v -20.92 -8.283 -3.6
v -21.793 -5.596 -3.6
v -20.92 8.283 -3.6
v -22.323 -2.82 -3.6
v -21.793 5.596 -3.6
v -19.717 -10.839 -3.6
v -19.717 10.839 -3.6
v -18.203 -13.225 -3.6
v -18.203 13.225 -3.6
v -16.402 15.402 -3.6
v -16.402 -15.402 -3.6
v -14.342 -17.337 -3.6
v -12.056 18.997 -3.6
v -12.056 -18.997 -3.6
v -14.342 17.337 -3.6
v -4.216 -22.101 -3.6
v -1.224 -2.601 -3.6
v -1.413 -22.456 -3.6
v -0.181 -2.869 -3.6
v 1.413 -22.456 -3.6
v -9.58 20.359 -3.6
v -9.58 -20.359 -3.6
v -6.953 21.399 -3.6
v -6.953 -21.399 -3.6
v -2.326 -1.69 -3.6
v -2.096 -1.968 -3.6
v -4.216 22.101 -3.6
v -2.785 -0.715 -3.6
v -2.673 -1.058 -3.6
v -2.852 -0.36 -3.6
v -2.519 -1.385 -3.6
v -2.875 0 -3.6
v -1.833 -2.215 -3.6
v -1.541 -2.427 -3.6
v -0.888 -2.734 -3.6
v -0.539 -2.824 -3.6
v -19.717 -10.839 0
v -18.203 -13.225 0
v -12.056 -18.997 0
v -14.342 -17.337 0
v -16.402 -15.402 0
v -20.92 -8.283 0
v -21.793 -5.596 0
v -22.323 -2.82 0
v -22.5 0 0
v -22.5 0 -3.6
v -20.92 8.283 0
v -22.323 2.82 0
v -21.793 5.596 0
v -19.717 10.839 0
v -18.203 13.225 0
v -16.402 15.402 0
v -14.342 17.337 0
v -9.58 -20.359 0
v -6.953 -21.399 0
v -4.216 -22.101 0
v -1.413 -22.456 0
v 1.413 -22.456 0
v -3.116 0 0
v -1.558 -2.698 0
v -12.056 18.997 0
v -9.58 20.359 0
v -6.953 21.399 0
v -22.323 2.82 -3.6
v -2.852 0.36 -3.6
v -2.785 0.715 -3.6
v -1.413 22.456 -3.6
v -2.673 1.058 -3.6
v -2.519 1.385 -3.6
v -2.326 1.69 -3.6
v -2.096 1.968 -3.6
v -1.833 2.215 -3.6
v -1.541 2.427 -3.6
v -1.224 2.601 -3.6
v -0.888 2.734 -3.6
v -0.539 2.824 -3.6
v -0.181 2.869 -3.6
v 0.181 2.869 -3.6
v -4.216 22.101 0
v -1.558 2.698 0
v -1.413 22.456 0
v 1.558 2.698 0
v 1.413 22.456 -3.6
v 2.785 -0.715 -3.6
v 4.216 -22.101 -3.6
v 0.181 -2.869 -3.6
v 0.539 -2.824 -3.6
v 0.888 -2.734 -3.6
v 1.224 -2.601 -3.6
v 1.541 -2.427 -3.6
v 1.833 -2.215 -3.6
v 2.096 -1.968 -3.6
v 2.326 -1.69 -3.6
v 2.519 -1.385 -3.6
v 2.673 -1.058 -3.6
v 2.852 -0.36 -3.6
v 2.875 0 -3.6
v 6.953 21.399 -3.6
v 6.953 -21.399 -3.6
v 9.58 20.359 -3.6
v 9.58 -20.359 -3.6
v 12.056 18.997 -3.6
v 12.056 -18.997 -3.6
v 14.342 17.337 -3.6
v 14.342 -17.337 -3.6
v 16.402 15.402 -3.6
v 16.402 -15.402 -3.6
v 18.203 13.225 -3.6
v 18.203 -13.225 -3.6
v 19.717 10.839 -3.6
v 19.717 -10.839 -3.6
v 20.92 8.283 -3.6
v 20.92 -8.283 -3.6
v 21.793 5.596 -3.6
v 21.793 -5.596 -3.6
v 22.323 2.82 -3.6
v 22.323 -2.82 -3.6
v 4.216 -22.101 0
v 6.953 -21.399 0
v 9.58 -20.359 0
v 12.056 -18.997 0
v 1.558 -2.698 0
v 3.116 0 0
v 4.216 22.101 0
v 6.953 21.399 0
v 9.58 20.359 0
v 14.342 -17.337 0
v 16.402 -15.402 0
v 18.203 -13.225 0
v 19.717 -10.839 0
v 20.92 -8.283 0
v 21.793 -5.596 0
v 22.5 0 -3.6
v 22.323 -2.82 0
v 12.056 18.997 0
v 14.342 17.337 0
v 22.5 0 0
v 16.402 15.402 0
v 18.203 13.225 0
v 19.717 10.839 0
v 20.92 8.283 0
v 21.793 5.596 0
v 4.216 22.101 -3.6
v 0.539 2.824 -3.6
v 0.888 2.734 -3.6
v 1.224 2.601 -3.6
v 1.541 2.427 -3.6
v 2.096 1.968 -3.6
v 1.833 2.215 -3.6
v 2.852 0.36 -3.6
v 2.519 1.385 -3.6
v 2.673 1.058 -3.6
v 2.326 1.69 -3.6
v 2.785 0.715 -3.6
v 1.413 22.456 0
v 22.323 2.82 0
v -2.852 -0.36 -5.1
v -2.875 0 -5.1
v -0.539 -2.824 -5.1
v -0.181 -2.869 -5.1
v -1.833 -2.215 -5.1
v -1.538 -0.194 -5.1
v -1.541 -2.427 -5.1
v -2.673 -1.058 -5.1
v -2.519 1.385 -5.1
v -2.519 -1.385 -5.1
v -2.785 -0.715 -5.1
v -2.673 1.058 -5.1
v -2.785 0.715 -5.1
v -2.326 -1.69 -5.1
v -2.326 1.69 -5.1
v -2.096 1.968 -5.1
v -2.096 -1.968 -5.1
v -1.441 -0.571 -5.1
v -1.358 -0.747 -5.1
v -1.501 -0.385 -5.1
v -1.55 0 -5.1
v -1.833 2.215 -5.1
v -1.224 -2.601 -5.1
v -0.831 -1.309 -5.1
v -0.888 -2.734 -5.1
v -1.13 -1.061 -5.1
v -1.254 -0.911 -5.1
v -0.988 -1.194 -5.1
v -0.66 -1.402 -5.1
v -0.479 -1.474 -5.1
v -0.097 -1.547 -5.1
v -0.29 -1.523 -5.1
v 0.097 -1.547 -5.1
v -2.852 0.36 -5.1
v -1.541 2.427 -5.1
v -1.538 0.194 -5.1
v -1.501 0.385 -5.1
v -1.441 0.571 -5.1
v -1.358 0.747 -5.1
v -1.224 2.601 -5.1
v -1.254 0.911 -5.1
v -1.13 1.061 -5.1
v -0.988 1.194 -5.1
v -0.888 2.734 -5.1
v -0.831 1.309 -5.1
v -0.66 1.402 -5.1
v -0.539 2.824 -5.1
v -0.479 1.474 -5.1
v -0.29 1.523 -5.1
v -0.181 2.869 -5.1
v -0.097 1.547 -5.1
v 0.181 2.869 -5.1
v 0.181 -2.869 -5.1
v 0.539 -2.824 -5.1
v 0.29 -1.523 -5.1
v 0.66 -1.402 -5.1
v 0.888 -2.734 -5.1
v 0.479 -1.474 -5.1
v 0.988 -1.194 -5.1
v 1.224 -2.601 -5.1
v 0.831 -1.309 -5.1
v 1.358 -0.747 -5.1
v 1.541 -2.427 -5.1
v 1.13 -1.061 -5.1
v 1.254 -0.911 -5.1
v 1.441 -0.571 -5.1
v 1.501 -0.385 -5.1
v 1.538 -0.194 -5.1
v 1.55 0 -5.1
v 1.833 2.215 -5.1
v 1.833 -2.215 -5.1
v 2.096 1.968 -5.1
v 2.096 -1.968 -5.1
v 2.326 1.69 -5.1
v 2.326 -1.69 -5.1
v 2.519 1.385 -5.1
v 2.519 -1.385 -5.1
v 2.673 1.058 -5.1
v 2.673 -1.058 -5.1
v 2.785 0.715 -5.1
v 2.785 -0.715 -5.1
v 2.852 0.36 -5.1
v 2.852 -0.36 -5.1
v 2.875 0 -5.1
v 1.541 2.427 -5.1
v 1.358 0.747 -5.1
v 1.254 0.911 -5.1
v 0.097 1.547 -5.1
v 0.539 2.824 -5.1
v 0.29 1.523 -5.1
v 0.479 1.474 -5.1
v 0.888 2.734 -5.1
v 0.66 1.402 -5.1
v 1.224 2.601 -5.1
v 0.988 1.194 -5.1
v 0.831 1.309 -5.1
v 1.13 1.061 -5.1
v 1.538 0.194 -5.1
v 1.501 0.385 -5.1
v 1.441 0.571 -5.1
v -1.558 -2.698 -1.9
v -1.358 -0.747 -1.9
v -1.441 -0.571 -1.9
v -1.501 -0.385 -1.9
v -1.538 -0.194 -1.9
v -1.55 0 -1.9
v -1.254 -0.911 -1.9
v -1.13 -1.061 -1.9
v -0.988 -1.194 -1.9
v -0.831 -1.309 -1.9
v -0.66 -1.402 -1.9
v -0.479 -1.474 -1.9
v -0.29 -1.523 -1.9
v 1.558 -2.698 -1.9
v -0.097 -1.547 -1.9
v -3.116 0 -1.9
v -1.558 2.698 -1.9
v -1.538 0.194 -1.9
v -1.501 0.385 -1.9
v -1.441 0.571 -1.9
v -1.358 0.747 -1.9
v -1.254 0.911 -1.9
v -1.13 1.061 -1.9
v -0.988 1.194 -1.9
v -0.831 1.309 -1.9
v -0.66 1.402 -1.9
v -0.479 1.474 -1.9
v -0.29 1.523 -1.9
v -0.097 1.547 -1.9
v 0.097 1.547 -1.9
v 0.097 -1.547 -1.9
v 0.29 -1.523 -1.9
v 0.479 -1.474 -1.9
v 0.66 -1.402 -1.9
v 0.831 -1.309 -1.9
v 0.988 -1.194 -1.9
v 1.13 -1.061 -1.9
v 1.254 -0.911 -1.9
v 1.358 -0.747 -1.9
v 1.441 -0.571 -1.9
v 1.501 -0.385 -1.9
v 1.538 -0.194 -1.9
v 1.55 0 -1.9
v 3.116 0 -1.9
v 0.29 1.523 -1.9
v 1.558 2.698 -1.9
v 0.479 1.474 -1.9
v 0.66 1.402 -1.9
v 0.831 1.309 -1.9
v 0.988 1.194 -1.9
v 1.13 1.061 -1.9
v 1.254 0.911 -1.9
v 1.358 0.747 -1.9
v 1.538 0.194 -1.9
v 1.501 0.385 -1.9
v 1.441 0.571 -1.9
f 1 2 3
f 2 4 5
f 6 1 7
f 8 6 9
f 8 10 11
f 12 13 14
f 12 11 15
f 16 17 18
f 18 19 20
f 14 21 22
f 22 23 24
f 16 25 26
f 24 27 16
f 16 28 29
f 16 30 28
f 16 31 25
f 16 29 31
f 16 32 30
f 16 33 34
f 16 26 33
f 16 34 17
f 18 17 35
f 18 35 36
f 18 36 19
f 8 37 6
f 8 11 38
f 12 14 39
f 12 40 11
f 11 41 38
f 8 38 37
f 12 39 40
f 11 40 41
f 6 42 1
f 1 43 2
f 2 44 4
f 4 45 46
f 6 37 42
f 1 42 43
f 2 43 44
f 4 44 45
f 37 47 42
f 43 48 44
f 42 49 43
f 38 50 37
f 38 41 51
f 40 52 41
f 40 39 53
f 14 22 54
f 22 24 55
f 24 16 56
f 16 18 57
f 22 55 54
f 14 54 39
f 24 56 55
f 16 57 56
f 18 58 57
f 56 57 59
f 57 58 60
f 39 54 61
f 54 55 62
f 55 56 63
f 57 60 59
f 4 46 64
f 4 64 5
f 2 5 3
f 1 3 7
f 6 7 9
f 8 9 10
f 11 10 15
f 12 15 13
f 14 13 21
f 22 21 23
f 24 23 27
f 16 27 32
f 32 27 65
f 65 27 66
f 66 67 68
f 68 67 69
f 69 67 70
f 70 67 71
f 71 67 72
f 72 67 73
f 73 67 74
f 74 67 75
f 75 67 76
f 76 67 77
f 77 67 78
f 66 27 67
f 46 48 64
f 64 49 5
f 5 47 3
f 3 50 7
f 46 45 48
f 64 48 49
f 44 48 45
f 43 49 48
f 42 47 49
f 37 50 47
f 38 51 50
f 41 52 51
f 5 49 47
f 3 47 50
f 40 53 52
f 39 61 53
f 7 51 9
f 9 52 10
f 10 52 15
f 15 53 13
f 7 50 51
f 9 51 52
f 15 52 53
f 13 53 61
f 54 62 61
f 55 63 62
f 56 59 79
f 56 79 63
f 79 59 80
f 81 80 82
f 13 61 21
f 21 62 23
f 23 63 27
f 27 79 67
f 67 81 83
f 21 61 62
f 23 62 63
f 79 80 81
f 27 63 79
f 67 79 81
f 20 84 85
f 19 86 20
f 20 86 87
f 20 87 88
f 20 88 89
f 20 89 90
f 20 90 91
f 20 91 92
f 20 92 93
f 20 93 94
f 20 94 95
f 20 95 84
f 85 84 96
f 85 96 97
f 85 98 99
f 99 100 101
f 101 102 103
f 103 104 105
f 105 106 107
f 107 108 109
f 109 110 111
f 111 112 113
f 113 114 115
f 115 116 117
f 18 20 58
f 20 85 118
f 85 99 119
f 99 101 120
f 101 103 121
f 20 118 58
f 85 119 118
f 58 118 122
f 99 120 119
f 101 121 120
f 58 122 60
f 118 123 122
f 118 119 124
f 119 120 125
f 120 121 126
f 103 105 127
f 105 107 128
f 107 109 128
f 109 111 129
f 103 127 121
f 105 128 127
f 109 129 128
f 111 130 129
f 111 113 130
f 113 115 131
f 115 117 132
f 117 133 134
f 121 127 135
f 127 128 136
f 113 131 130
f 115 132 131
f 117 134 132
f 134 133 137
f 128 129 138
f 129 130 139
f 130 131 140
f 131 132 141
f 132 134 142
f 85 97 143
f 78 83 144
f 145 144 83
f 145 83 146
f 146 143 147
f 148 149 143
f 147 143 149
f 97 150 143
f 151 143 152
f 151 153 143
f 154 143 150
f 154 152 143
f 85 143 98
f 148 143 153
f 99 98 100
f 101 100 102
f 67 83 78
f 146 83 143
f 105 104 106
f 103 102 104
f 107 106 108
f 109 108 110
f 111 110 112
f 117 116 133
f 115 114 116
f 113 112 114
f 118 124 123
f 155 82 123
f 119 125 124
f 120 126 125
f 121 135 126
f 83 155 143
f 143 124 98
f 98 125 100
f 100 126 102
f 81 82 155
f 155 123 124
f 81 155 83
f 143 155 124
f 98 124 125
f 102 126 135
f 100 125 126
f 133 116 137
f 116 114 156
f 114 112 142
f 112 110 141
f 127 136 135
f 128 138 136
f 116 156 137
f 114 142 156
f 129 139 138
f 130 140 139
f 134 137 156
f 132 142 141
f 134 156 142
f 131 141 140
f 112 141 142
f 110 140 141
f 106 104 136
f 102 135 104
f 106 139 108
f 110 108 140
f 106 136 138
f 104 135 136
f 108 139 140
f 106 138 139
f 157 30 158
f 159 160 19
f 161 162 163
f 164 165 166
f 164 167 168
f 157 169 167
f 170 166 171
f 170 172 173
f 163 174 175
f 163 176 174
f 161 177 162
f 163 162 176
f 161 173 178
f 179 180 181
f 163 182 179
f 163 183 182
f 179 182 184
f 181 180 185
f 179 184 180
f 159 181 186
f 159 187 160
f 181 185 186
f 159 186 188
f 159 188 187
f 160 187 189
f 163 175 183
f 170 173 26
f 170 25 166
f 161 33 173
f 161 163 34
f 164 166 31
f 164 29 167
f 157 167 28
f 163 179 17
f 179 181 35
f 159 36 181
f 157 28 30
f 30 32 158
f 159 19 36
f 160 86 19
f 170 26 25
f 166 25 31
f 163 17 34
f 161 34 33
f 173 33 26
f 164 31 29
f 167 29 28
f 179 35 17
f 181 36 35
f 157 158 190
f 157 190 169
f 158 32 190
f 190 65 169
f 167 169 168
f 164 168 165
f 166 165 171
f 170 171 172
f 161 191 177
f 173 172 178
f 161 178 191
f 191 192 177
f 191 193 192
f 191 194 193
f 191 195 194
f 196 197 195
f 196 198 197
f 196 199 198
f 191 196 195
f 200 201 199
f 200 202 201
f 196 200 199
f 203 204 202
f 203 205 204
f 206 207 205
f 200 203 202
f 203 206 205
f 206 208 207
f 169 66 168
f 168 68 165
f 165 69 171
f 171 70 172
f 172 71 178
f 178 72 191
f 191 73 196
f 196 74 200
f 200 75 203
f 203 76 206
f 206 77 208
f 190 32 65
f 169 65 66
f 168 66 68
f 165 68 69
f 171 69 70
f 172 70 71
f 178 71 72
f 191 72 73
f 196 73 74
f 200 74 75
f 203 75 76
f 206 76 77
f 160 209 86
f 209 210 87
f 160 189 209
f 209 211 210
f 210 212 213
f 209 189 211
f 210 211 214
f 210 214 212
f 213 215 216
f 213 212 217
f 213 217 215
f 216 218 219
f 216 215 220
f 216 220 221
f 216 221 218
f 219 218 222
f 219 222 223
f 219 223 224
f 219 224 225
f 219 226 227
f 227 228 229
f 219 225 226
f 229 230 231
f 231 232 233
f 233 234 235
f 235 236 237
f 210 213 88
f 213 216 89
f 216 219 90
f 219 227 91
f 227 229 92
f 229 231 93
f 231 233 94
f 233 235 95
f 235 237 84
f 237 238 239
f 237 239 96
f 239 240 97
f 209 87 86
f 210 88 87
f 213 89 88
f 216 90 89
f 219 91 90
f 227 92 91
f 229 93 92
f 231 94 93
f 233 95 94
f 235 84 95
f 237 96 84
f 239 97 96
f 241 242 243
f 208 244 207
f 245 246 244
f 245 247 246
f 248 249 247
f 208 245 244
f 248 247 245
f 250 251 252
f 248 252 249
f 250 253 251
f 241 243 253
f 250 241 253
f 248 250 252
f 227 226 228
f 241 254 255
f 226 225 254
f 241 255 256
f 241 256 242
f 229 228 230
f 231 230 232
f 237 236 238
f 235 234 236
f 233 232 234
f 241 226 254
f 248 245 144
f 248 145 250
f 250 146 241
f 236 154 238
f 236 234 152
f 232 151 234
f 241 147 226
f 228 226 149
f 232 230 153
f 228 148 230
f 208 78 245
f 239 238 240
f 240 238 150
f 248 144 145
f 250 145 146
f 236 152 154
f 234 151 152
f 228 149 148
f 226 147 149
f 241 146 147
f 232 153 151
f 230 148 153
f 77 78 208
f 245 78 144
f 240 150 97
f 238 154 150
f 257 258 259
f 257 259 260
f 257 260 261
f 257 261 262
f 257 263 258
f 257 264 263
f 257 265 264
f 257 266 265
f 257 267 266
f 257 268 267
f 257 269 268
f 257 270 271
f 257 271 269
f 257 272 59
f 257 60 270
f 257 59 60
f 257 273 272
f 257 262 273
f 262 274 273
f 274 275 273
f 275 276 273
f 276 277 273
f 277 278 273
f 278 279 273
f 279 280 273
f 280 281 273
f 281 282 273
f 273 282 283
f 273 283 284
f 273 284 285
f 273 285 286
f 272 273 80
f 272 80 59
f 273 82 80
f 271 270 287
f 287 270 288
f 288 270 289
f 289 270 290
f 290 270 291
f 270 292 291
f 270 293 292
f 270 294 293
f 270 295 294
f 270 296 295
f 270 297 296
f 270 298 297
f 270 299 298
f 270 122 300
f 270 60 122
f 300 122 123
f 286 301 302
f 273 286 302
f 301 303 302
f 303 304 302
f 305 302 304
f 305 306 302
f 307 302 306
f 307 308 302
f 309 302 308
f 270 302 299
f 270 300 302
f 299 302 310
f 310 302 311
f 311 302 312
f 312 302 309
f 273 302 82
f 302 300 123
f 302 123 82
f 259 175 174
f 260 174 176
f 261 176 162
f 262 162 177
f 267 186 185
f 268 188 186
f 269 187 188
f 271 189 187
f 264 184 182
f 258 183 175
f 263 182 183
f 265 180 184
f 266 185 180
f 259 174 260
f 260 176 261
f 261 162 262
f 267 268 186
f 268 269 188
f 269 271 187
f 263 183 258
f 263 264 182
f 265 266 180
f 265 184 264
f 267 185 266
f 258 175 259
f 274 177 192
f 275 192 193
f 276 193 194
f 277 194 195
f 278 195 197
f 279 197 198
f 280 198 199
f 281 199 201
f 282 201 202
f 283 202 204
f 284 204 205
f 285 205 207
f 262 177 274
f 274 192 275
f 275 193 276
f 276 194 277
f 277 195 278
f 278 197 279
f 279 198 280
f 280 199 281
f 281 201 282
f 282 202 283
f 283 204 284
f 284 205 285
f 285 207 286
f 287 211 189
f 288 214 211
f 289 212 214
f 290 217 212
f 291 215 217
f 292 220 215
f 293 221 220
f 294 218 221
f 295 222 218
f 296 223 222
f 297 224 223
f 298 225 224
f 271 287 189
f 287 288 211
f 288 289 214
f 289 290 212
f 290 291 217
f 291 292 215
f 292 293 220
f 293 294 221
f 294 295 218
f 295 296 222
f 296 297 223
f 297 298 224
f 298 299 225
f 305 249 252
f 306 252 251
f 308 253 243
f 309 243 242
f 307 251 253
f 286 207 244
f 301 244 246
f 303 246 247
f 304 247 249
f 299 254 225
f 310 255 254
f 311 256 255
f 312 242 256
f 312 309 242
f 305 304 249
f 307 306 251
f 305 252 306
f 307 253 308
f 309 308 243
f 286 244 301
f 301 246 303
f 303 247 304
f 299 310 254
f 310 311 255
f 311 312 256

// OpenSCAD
$fn = 50;

difference() {
	union() {
		translate(v = [0, 0, -3.6]) {
			cylinder(h = 3.6, r = 22.5);
		}
		#translate(v = [0, 0, -5.1]) {
			cylinder(h = 5.1, r = 2.875);
		}
	}
	union() {
		translate(v = [0, 0, 0]) {
			rotate(a = [0, 0, 0]) {
				difference() {
					union() {
						translate(v = [0, 0, -1.9]) {
							linear_extrude(height = 1.9) {
								polygon(points = [[3.1158, 0.0], [1.5579000000000005, 2.698361953111554], [-1.5578999999999994, 2.6983619531115544], [-3.1158, 3.815754496783323e-16], [-1.5579000000000014, -2.6983619531115535], [1.557899999999998, -2.6983619531115552]]);
							}
						}
					}
					union();
				}
			}
		}
		#translate(v = [0, 0, -100.0]) {
			cylinder(h = 200, r = 1.55);
		}
	}
}
